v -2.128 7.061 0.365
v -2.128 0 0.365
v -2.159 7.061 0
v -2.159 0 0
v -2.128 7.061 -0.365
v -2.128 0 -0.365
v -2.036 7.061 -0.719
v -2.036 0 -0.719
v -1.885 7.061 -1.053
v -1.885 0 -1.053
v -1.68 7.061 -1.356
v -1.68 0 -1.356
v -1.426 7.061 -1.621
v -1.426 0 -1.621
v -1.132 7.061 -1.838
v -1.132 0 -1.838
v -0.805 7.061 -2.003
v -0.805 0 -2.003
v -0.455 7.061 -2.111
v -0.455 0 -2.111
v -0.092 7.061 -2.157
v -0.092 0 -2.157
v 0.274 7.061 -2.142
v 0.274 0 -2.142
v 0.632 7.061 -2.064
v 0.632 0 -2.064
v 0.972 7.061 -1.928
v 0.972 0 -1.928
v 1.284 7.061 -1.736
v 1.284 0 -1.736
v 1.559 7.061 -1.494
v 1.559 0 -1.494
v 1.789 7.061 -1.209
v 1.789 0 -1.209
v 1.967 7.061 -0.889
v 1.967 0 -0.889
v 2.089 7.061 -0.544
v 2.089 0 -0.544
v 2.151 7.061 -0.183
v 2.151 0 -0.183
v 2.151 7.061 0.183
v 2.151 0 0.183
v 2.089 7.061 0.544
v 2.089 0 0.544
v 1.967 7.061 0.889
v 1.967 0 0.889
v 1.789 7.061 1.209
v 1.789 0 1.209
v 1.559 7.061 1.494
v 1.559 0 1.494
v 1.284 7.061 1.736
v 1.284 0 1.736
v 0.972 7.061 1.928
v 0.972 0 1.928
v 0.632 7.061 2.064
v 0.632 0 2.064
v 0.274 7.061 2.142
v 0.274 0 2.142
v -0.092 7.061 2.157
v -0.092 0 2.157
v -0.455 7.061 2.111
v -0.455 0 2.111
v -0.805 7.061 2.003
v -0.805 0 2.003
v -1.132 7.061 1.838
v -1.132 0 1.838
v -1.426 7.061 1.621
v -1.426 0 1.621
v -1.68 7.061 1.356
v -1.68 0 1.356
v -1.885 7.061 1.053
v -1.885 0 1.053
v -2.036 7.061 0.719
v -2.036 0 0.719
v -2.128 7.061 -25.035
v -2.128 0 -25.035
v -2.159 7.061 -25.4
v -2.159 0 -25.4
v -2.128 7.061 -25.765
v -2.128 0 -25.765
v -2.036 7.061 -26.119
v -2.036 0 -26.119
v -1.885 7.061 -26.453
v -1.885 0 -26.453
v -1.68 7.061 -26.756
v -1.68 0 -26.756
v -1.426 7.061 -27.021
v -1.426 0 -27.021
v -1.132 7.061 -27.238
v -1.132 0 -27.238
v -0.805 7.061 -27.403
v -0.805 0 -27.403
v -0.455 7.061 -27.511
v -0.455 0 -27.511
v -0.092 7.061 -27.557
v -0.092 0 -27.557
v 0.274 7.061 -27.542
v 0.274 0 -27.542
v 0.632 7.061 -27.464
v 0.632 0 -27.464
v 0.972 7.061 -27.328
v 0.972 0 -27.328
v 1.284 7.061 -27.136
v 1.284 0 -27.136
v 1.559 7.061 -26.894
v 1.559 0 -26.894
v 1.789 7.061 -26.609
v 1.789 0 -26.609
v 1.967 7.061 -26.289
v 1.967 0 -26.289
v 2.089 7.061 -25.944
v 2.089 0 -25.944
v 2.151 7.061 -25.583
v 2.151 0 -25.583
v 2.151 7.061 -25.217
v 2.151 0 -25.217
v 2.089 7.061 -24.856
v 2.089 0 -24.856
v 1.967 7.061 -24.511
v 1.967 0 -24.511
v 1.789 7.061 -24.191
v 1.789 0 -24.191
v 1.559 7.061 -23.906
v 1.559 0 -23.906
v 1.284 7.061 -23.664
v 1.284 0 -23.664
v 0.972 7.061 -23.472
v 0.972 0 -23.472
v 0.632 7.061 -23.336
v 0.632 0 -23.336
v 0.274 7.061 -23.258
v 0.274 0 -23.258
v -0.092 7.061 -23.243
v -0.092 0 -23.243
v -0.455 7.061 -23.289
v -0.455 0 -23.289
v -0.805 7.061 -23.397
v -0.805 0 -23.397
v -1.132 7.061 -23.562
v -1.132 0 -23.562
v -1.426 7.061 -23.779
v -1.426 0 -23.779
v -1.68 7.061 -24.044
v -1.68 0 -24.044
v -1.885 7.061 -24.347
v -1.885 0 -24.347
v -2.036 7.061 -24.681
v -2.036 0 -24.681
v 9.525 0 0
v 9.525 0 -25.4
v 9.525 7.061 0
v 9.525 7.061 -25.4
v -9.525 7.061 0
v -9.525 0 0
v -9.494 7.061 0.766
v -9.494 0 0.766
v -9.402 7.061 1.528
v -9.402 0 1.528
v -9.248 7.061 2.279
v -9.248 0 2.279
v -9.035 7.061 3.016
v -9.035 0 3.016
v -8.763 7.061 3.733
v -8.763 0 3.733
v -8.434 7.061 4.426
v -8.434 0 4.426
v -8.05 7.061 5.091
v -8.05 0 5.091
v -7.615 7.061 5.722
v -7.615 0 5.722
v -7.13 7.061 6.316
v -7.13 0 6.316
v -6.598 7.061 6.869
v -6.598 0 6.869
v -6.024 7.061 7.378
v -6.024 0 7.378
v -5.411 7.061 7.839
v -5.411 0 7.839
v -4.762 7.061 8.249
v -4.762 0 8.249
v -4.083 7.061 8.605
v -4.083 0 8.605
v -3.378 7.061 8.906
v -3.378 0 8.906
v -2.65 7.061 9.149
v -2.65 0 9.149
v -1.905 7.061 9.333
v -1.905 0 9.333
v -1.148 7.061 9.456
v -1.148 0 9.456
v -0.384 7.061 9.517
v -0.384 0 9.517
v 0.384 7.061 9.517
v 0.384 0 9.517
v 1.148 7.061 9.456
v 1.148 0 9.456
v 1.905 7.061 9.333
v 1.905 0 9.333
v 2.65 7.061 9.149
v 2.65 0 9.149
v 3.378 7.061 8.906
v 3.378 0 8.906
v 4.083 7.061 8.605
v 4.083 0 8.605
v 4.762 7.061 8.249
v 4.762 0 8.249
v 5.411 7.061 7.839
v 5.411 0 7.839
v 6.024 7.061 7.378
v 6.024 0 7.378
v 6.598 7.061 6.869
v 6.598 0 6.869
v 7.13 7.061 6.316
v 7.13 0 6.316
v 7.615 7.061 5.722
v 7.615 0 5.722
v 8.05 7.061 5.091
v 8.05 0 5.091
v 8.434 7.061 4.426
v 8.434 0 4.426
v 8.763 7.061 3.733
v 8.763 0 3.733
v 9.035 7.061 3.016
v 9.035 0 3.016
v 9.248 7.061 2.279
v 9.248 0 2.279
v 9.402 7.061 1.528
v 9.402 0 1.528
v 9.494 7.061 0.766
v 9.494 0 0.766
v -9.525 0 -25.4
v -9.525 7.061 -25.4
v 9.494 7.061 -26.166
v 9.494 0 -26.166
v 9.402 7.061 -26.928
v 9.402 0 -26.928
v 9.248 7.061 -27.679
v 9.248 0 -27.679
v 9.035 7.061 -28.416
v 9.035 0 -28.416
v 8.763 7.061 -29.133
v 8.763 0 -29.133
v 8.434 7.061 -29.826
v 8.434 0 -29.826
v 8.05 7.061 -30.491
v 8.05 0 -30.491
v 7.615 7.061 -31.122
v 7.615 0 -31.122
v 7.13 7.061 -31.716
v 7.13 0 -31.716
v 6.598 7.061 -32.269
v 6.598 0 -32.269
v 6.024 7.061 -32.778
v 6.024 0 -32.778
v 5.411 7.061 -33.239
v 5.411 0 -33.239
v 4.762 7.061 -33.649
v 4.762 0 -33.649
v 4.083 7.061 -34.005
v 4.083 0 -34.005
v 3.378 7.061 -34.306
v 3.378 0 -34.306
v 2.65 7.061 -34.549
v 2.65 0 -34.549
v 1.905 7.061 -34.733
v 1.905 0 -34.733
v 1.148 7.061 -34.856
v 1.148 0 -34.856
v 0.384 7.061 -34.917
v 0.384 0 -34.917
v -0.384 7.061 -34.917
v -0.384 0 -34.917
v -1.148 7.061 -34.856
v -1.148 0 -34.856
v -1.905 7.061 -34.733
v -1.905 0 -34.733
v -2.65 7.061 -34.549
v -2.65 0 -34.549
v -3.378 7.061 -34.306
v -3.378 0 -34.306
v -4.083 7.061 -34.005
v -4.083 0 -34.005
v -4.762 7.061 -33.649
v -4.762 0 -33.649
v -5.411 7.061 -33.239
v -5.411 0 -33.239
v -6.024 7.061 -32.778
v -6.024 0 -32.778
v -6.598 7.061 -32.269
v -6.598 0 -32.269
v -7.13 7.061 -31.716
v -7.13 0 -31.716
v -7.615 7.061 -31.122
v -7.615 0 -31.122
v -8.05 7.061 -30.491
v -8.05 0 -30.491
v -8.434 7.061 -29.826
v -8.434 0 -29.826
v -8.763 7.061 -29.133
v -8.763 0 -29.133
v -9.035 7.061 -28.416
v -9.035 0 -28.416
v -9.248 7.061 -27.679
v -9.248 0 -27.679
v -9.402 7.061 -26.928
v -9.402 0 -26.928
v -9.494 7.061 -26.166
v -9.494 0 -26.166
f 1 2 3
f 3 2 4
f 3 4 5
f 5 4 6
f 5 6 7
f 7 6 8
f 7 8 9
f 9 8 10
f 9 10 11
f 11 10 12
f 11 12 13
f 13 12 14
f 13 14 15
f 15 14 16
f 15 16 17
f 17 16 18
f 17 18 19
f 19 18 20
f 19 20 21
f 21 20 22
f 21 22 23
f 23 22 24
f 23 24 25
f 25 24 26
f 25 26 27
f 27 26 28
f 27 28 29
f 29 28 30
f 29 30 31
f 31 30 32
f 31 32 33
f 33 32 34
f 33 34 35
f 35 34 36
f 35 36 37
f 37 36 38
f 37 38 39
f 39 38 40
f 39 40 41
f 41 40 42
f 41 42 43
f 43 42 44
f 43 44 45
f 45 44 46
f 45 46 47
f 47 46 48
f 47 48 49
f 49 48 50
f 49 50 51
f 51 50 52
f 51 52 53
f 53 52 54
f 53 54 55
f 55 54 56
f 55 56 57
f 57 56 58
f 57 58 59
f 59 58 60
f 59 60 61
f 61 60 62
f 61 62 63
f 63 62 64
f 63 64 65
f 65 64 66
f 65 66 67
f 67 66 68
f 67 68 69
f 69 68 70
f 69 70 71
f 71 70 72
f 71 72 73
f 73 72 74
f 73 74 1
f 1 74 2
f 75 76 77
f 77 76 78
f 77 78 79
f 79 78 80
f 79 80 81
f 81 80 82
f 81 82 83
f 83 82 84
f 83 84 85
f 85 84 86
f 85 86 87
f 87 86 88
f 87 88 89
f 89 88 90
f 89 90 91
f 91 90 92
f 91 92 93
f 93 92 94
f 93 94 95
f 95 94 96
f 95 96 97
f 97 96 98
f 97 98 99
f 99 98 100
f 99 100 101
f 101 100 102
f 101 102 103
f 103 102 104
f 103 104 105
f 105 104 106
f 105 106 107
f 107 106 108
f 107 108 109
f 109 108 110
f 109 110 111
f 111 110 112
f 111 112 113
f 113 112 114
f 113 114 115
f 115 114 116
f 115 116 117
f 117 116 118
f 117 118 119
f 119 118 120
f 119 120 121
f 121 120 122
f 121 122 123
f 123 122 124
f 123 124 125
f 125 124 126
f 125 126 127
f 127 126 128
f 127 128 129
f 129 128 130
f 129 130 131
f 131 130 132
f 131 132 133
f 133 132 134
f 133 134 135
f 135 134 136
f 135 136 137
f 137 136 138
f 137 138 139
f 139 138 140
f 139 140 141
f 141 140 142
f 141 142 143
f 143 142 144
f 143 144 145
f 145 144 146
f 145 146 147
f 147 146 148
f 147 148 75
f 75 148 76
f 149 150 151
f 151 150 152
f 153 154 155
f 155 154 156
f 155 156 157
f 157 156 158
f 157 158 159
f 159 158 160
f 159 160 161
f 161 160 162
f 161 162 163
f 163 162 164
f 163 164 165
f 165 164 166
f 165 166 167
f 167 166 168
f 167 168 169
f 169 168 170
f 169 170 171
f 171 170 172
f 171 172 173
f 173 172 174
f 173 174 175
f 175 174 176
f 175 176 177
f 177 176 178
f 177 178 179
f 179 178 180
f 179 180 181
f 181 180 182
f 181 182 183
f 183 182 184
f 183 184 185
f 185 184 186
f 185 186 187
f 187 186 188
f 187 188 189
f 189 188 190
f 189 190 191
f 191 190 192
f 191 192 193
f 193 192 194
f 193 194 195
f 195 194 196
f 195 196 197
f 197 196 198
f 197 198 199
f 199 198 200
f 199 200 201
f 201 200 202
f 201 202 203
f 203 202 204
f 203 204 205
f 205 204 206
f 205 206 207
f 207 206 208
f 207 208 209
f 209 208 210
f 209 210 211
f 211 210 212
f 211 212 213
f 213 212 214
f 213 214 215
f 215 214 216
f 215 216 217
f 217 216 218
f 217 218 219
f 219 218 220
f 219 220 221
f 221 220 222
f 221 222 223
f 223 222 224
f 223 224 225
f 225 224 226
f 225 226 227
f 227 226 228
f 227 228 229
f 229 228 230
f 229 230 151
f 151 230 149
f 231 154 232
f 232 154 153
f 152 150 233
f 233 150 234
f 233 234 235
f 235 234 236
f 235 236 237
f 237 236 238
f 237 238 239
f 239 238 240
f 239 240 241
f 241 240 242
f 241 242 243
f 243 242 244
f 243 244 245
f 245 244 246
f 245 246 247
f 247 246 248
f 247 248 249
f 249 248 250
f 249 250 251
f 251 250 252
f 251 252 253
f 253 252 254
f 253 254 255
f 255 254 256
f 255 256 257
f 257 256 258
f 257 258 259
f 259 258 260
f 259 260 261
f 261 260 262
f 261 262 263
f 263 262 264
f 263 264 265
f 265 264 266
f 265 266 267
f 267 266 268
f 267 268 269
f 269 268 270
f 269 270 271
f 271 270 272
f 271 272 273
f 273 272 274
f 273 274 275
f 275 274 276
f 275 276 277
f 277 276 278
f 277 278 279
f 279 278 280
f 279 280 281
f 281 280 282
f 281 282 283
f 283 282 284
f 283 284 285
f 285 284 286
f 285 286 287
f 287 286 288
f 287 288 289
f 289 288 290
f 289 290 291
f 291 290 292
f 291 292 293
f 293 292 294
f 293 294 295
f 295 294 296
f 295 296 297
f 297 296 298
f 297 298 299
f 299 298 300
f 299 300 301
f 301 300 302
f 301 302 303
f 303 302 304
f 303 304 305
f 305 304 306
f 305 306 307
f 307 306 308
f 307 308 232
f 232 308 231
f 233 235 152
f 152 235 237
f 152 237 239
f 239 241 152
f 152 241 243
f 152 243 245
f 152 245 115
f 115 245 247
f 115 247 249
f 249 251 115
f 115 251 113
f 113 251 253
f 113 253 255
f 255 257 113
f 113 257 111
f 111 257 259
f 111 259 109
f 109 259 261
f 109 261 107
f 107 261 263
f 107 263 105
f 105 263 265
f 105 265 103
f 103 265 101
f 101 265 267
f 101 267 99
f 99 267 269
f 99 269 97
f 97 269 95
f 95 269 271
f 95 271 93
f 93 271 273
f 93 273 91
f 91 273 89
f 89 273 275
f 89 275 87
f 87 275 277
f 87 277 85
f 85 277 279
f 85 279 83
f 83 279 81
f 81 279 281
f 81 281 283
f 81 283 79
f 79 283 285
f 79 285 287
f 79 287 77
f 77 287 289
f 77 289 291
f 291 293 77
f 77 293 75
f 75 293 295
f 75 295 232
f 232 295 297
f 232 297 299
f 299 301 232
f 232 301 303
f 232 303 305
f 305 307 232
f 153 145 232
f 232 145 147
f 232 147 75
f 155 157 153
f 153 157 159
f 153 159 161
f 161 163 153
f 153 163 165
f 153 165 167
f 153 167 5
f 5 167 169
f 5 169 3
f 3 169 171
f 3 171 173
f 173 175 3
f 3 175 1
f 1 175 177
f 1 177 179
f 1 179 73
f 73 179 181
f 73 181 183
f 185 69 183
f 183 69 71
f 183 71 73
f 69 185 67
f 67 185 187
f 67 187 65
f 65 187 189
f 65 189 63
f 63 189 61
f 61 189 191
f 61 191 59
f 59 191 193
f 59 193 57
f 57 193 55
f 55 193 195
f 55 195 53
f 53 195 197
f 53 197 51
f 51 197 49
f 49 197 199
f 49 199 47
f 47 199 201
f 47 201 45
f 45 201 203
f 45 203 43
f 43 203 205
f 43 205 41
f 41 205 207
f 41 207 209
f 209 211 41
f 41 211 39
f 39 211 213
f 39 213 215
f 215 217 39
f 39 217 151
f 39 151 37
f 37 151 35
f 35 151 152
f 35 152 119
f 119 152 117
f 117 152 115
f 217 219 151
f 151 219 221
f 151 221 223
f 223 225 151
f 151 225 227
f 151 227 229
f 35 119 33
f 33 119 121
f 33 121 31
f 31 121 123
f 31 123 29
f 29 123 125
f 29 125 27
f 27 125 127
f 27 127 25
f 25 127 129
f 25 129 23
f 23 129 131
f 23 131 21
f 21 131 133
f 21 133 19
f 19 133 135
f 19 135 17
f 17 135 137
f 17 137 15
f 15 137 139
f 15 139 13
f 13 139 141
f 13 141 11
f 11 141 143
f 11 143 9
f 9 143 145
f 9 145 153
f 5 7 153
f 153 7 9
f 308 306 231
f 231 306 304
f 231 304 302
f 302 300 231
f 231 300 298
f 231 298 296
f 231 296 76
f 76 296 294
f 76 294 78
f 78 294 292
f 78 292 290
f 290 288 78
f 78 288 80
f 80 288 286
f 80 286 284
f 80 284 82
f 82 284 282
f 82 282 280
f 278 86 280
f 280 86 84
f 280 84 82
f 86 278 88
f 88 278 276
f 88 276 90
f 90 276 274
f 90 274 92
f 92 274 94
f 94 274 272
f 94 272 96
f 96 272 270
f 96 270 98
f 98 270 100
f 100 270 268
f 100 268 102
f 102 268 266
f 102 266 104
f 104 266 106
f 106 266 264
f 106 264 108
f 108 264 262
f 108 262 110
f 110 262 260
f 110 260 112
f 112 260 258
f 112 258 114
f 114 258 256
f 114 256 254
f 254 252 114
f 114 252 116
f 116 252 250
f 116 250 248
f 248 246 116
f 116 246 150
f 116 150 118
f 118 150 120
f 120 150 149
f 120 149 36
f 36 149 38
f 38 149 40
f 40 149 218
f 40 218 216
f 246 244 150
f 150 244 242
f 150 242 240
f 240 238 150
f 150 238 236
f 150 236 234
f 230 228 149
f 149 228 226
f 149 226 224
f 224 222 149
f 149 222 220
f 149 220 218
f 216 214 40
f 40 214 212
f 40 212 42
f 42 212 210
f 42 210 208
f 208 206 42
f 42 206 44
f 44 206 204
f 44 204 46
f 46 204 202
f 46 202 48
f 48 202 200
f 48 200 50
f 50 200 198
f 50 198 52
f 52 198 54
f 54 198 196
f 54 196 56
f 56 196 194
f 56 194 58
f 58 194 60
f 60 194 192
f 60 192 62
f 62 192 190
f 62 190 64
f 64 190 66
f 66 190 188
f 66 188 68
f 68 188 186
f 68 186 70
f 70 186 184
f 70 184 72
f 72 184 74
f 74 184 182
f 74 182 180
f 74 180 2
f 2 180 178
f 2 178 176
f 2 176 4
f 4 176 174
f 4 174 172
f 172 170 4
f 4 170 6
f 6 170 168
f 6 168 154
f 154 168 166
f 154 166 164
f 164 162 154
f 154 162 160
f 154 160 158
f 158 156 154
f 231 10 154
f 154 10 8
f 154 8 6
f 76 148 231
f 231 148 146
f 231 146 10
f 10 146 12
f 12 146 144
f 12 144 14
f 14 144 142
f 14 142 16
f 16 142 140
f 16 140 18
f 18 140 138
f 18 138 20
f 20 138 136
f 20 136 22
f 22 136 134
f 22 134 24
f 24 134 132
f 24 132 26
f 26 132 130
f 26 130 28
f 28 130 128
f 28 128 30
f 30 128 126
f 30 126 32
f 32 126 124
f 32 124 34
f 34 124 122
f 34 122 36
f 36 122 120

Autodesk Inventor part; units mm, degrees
ref_plane "YZ Plane" through (0, 0, 0) normal (1, 0, 0) x (0, 1, 0)
ref_plane "XZ Plane" through (0, 0, 0) normal (0, 1, 0) x (-1, 0, 0)
ref_plane "XY Plane" through (0, 0, 0) normal (0, 0, 1) x (1, 0, 0)
sketch "Sketch1" plane through (0, 0, 0) normal (0, 1, 0) x (-1, 0, 0)
  circle A0 centre (0, 0) radius 2.159
  circle A1 centre (0, -25.4) radius 2.159
  line L0 (0, 0) -> (0, -25.4) construction
  line L1 (-9.525, 0) -> (-9.525, -25.4)
  line L2 (9.525, -25.4) -> (9.525, 0)
  arc A2 (9.525, 0) -> (-9.525, 0) centre (0, 0) ccw
  arc A3 (-9.525, -25.4) -> (9.525, -25.4) centre (0, -25.4) ccw
  point P0 (0, -12.7)
  dimension "d0" = 4.318
  dimension "d2" = 25.4
  dimension "d3" = 19.05
extrude "Extrusion1" add sketch "Sketch1" along normal blind 7.061
properties part number "Large Motor Spacer" material "PET Plastic"
